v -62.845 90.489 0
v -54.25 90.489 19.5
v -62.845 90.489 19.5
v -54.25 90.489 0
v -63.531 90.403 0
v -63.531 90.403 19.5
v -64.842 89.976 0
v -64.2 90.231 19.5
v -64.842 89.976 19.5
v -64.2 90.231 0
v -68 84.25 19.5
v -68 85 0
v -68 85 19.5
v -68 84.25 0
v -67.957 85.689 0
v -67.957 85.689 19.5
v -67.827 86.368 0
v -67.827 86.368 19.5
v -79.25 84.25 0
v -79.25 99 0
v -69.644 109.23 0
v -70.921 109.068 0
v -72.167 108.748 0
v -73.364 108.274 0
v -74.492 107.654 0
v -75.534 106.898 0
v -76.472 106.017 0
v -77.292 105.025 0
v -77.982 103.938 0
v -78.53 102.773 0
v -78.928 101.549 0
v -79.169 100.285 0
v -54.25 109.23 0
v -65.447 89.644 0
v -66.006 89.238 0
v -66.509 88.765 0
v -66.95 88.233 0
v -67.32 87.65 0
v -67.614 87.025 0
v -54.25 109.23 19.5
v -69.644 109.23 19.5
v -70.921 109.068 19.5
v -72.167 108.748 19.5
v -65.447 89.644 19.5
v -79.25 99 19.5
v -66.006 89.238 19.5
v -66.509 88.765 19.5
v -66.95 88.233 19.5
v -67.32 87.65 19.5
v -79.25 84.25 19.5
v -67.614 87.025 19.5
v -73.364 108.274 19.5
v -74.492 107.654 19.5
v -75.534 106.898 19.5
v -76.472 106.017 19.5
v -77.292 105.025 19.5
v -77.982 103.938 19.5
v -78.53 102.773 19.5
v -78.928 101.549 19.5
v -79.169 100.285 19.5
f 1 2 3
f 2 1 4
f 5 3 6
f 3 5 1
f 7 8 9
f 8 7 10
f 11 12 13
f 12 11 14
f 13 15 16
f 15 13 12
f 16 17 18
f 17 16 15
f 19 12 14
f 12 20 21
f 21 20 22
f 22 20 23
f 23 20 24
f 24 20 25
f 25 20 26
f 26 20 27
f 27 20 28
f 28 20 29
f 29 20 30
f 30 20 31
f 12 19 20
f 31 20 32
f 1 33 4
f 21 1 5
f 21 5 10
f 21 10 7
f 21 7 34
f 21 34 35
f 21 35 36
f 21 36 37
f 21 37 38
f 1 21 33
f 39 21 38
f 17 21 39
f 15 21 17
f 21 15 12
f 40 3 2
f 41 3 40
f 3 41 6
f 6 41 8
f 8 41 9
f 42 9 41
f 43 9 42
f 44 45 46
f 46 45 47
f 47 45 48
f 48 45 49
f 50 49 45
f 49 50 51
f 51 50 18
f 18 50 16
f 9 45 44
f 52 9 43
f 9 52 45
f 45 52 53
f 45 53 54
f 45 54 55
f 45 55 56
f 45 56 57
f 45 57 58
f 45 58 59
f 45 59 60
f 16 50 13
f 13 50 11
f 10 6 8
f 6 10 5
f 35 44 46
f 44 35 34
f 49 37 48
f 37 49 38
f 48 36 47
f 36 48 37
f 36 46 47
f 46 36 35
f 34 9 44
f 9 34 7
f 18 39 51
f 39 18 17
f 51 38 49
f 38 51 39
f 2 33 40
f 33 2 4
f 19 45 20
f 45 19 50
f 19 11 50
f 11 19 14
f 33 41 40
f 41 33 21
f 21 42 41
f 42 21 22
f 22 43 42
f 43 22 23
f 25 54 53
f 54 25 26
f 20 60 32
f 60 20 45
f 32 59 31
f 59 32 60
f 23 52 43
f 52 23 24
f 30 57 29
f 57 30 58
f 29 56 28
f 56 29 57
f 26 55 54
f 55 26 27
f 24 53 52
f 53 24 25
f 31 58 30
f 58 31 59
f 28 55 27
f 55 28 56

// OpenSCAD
$fn = 50;


difference() {
	union() {
		hull() {
			translate(v = [-69.0000000000, 99.0000000000, 0]) {
				cylinder(h = 19.5000000000, r = 10.2500000000);
			}
			translate(v = [69.0000000000, 99.0000000000, 0]) {
				cylinder(h = 19.5000000000, r = 10.2500000000);
			}
			translate(v = [-69.0000000000, -99.0000000000, 0]) {
				cylinder(h = 19.5000000000, r = 10.2500000000);
			}
			translate(v = [69.0000000000, -99.0000000000, 0]) {
				cylinder(h = 19.5000000000, r = 10.2500000000);
			}
		}
	}
	union() {
		hull() {
			translate(v = [-62.5000000000, 85.0000000000, 0]) {
				cylinder(h = 19.5000000000, r = 5.5000000000);
			}
			translate(v = [62.5000000000, 85.0000000000, 0]) {
				cylinder(h = 19.5000000000, r = 5.5000000000);
			}
			translate(v = [-62.5000000000, -85.0000000000, 0]) {
				cylinder(h = 19.5000000000, r = 5.5000000000);
			}
			translate(v = [62.5000000000, -85.0000000000, 0]) {
				cylinder(h = 19.5000000000, r = 5.5000000000);
			}
		}
		#translate(v = [-54.2500000000, -109.2500000000, 0]) {
			cube(size = [158.5000000000, 218.5000000000, 19.5000000000]);
		}
		#translate(v = [-79.2500000000, -134.2500000000, 0]) {
			cube(size = [158.5000000000, 218.5000000000, 19.5000000000]);
		}
	}
}
